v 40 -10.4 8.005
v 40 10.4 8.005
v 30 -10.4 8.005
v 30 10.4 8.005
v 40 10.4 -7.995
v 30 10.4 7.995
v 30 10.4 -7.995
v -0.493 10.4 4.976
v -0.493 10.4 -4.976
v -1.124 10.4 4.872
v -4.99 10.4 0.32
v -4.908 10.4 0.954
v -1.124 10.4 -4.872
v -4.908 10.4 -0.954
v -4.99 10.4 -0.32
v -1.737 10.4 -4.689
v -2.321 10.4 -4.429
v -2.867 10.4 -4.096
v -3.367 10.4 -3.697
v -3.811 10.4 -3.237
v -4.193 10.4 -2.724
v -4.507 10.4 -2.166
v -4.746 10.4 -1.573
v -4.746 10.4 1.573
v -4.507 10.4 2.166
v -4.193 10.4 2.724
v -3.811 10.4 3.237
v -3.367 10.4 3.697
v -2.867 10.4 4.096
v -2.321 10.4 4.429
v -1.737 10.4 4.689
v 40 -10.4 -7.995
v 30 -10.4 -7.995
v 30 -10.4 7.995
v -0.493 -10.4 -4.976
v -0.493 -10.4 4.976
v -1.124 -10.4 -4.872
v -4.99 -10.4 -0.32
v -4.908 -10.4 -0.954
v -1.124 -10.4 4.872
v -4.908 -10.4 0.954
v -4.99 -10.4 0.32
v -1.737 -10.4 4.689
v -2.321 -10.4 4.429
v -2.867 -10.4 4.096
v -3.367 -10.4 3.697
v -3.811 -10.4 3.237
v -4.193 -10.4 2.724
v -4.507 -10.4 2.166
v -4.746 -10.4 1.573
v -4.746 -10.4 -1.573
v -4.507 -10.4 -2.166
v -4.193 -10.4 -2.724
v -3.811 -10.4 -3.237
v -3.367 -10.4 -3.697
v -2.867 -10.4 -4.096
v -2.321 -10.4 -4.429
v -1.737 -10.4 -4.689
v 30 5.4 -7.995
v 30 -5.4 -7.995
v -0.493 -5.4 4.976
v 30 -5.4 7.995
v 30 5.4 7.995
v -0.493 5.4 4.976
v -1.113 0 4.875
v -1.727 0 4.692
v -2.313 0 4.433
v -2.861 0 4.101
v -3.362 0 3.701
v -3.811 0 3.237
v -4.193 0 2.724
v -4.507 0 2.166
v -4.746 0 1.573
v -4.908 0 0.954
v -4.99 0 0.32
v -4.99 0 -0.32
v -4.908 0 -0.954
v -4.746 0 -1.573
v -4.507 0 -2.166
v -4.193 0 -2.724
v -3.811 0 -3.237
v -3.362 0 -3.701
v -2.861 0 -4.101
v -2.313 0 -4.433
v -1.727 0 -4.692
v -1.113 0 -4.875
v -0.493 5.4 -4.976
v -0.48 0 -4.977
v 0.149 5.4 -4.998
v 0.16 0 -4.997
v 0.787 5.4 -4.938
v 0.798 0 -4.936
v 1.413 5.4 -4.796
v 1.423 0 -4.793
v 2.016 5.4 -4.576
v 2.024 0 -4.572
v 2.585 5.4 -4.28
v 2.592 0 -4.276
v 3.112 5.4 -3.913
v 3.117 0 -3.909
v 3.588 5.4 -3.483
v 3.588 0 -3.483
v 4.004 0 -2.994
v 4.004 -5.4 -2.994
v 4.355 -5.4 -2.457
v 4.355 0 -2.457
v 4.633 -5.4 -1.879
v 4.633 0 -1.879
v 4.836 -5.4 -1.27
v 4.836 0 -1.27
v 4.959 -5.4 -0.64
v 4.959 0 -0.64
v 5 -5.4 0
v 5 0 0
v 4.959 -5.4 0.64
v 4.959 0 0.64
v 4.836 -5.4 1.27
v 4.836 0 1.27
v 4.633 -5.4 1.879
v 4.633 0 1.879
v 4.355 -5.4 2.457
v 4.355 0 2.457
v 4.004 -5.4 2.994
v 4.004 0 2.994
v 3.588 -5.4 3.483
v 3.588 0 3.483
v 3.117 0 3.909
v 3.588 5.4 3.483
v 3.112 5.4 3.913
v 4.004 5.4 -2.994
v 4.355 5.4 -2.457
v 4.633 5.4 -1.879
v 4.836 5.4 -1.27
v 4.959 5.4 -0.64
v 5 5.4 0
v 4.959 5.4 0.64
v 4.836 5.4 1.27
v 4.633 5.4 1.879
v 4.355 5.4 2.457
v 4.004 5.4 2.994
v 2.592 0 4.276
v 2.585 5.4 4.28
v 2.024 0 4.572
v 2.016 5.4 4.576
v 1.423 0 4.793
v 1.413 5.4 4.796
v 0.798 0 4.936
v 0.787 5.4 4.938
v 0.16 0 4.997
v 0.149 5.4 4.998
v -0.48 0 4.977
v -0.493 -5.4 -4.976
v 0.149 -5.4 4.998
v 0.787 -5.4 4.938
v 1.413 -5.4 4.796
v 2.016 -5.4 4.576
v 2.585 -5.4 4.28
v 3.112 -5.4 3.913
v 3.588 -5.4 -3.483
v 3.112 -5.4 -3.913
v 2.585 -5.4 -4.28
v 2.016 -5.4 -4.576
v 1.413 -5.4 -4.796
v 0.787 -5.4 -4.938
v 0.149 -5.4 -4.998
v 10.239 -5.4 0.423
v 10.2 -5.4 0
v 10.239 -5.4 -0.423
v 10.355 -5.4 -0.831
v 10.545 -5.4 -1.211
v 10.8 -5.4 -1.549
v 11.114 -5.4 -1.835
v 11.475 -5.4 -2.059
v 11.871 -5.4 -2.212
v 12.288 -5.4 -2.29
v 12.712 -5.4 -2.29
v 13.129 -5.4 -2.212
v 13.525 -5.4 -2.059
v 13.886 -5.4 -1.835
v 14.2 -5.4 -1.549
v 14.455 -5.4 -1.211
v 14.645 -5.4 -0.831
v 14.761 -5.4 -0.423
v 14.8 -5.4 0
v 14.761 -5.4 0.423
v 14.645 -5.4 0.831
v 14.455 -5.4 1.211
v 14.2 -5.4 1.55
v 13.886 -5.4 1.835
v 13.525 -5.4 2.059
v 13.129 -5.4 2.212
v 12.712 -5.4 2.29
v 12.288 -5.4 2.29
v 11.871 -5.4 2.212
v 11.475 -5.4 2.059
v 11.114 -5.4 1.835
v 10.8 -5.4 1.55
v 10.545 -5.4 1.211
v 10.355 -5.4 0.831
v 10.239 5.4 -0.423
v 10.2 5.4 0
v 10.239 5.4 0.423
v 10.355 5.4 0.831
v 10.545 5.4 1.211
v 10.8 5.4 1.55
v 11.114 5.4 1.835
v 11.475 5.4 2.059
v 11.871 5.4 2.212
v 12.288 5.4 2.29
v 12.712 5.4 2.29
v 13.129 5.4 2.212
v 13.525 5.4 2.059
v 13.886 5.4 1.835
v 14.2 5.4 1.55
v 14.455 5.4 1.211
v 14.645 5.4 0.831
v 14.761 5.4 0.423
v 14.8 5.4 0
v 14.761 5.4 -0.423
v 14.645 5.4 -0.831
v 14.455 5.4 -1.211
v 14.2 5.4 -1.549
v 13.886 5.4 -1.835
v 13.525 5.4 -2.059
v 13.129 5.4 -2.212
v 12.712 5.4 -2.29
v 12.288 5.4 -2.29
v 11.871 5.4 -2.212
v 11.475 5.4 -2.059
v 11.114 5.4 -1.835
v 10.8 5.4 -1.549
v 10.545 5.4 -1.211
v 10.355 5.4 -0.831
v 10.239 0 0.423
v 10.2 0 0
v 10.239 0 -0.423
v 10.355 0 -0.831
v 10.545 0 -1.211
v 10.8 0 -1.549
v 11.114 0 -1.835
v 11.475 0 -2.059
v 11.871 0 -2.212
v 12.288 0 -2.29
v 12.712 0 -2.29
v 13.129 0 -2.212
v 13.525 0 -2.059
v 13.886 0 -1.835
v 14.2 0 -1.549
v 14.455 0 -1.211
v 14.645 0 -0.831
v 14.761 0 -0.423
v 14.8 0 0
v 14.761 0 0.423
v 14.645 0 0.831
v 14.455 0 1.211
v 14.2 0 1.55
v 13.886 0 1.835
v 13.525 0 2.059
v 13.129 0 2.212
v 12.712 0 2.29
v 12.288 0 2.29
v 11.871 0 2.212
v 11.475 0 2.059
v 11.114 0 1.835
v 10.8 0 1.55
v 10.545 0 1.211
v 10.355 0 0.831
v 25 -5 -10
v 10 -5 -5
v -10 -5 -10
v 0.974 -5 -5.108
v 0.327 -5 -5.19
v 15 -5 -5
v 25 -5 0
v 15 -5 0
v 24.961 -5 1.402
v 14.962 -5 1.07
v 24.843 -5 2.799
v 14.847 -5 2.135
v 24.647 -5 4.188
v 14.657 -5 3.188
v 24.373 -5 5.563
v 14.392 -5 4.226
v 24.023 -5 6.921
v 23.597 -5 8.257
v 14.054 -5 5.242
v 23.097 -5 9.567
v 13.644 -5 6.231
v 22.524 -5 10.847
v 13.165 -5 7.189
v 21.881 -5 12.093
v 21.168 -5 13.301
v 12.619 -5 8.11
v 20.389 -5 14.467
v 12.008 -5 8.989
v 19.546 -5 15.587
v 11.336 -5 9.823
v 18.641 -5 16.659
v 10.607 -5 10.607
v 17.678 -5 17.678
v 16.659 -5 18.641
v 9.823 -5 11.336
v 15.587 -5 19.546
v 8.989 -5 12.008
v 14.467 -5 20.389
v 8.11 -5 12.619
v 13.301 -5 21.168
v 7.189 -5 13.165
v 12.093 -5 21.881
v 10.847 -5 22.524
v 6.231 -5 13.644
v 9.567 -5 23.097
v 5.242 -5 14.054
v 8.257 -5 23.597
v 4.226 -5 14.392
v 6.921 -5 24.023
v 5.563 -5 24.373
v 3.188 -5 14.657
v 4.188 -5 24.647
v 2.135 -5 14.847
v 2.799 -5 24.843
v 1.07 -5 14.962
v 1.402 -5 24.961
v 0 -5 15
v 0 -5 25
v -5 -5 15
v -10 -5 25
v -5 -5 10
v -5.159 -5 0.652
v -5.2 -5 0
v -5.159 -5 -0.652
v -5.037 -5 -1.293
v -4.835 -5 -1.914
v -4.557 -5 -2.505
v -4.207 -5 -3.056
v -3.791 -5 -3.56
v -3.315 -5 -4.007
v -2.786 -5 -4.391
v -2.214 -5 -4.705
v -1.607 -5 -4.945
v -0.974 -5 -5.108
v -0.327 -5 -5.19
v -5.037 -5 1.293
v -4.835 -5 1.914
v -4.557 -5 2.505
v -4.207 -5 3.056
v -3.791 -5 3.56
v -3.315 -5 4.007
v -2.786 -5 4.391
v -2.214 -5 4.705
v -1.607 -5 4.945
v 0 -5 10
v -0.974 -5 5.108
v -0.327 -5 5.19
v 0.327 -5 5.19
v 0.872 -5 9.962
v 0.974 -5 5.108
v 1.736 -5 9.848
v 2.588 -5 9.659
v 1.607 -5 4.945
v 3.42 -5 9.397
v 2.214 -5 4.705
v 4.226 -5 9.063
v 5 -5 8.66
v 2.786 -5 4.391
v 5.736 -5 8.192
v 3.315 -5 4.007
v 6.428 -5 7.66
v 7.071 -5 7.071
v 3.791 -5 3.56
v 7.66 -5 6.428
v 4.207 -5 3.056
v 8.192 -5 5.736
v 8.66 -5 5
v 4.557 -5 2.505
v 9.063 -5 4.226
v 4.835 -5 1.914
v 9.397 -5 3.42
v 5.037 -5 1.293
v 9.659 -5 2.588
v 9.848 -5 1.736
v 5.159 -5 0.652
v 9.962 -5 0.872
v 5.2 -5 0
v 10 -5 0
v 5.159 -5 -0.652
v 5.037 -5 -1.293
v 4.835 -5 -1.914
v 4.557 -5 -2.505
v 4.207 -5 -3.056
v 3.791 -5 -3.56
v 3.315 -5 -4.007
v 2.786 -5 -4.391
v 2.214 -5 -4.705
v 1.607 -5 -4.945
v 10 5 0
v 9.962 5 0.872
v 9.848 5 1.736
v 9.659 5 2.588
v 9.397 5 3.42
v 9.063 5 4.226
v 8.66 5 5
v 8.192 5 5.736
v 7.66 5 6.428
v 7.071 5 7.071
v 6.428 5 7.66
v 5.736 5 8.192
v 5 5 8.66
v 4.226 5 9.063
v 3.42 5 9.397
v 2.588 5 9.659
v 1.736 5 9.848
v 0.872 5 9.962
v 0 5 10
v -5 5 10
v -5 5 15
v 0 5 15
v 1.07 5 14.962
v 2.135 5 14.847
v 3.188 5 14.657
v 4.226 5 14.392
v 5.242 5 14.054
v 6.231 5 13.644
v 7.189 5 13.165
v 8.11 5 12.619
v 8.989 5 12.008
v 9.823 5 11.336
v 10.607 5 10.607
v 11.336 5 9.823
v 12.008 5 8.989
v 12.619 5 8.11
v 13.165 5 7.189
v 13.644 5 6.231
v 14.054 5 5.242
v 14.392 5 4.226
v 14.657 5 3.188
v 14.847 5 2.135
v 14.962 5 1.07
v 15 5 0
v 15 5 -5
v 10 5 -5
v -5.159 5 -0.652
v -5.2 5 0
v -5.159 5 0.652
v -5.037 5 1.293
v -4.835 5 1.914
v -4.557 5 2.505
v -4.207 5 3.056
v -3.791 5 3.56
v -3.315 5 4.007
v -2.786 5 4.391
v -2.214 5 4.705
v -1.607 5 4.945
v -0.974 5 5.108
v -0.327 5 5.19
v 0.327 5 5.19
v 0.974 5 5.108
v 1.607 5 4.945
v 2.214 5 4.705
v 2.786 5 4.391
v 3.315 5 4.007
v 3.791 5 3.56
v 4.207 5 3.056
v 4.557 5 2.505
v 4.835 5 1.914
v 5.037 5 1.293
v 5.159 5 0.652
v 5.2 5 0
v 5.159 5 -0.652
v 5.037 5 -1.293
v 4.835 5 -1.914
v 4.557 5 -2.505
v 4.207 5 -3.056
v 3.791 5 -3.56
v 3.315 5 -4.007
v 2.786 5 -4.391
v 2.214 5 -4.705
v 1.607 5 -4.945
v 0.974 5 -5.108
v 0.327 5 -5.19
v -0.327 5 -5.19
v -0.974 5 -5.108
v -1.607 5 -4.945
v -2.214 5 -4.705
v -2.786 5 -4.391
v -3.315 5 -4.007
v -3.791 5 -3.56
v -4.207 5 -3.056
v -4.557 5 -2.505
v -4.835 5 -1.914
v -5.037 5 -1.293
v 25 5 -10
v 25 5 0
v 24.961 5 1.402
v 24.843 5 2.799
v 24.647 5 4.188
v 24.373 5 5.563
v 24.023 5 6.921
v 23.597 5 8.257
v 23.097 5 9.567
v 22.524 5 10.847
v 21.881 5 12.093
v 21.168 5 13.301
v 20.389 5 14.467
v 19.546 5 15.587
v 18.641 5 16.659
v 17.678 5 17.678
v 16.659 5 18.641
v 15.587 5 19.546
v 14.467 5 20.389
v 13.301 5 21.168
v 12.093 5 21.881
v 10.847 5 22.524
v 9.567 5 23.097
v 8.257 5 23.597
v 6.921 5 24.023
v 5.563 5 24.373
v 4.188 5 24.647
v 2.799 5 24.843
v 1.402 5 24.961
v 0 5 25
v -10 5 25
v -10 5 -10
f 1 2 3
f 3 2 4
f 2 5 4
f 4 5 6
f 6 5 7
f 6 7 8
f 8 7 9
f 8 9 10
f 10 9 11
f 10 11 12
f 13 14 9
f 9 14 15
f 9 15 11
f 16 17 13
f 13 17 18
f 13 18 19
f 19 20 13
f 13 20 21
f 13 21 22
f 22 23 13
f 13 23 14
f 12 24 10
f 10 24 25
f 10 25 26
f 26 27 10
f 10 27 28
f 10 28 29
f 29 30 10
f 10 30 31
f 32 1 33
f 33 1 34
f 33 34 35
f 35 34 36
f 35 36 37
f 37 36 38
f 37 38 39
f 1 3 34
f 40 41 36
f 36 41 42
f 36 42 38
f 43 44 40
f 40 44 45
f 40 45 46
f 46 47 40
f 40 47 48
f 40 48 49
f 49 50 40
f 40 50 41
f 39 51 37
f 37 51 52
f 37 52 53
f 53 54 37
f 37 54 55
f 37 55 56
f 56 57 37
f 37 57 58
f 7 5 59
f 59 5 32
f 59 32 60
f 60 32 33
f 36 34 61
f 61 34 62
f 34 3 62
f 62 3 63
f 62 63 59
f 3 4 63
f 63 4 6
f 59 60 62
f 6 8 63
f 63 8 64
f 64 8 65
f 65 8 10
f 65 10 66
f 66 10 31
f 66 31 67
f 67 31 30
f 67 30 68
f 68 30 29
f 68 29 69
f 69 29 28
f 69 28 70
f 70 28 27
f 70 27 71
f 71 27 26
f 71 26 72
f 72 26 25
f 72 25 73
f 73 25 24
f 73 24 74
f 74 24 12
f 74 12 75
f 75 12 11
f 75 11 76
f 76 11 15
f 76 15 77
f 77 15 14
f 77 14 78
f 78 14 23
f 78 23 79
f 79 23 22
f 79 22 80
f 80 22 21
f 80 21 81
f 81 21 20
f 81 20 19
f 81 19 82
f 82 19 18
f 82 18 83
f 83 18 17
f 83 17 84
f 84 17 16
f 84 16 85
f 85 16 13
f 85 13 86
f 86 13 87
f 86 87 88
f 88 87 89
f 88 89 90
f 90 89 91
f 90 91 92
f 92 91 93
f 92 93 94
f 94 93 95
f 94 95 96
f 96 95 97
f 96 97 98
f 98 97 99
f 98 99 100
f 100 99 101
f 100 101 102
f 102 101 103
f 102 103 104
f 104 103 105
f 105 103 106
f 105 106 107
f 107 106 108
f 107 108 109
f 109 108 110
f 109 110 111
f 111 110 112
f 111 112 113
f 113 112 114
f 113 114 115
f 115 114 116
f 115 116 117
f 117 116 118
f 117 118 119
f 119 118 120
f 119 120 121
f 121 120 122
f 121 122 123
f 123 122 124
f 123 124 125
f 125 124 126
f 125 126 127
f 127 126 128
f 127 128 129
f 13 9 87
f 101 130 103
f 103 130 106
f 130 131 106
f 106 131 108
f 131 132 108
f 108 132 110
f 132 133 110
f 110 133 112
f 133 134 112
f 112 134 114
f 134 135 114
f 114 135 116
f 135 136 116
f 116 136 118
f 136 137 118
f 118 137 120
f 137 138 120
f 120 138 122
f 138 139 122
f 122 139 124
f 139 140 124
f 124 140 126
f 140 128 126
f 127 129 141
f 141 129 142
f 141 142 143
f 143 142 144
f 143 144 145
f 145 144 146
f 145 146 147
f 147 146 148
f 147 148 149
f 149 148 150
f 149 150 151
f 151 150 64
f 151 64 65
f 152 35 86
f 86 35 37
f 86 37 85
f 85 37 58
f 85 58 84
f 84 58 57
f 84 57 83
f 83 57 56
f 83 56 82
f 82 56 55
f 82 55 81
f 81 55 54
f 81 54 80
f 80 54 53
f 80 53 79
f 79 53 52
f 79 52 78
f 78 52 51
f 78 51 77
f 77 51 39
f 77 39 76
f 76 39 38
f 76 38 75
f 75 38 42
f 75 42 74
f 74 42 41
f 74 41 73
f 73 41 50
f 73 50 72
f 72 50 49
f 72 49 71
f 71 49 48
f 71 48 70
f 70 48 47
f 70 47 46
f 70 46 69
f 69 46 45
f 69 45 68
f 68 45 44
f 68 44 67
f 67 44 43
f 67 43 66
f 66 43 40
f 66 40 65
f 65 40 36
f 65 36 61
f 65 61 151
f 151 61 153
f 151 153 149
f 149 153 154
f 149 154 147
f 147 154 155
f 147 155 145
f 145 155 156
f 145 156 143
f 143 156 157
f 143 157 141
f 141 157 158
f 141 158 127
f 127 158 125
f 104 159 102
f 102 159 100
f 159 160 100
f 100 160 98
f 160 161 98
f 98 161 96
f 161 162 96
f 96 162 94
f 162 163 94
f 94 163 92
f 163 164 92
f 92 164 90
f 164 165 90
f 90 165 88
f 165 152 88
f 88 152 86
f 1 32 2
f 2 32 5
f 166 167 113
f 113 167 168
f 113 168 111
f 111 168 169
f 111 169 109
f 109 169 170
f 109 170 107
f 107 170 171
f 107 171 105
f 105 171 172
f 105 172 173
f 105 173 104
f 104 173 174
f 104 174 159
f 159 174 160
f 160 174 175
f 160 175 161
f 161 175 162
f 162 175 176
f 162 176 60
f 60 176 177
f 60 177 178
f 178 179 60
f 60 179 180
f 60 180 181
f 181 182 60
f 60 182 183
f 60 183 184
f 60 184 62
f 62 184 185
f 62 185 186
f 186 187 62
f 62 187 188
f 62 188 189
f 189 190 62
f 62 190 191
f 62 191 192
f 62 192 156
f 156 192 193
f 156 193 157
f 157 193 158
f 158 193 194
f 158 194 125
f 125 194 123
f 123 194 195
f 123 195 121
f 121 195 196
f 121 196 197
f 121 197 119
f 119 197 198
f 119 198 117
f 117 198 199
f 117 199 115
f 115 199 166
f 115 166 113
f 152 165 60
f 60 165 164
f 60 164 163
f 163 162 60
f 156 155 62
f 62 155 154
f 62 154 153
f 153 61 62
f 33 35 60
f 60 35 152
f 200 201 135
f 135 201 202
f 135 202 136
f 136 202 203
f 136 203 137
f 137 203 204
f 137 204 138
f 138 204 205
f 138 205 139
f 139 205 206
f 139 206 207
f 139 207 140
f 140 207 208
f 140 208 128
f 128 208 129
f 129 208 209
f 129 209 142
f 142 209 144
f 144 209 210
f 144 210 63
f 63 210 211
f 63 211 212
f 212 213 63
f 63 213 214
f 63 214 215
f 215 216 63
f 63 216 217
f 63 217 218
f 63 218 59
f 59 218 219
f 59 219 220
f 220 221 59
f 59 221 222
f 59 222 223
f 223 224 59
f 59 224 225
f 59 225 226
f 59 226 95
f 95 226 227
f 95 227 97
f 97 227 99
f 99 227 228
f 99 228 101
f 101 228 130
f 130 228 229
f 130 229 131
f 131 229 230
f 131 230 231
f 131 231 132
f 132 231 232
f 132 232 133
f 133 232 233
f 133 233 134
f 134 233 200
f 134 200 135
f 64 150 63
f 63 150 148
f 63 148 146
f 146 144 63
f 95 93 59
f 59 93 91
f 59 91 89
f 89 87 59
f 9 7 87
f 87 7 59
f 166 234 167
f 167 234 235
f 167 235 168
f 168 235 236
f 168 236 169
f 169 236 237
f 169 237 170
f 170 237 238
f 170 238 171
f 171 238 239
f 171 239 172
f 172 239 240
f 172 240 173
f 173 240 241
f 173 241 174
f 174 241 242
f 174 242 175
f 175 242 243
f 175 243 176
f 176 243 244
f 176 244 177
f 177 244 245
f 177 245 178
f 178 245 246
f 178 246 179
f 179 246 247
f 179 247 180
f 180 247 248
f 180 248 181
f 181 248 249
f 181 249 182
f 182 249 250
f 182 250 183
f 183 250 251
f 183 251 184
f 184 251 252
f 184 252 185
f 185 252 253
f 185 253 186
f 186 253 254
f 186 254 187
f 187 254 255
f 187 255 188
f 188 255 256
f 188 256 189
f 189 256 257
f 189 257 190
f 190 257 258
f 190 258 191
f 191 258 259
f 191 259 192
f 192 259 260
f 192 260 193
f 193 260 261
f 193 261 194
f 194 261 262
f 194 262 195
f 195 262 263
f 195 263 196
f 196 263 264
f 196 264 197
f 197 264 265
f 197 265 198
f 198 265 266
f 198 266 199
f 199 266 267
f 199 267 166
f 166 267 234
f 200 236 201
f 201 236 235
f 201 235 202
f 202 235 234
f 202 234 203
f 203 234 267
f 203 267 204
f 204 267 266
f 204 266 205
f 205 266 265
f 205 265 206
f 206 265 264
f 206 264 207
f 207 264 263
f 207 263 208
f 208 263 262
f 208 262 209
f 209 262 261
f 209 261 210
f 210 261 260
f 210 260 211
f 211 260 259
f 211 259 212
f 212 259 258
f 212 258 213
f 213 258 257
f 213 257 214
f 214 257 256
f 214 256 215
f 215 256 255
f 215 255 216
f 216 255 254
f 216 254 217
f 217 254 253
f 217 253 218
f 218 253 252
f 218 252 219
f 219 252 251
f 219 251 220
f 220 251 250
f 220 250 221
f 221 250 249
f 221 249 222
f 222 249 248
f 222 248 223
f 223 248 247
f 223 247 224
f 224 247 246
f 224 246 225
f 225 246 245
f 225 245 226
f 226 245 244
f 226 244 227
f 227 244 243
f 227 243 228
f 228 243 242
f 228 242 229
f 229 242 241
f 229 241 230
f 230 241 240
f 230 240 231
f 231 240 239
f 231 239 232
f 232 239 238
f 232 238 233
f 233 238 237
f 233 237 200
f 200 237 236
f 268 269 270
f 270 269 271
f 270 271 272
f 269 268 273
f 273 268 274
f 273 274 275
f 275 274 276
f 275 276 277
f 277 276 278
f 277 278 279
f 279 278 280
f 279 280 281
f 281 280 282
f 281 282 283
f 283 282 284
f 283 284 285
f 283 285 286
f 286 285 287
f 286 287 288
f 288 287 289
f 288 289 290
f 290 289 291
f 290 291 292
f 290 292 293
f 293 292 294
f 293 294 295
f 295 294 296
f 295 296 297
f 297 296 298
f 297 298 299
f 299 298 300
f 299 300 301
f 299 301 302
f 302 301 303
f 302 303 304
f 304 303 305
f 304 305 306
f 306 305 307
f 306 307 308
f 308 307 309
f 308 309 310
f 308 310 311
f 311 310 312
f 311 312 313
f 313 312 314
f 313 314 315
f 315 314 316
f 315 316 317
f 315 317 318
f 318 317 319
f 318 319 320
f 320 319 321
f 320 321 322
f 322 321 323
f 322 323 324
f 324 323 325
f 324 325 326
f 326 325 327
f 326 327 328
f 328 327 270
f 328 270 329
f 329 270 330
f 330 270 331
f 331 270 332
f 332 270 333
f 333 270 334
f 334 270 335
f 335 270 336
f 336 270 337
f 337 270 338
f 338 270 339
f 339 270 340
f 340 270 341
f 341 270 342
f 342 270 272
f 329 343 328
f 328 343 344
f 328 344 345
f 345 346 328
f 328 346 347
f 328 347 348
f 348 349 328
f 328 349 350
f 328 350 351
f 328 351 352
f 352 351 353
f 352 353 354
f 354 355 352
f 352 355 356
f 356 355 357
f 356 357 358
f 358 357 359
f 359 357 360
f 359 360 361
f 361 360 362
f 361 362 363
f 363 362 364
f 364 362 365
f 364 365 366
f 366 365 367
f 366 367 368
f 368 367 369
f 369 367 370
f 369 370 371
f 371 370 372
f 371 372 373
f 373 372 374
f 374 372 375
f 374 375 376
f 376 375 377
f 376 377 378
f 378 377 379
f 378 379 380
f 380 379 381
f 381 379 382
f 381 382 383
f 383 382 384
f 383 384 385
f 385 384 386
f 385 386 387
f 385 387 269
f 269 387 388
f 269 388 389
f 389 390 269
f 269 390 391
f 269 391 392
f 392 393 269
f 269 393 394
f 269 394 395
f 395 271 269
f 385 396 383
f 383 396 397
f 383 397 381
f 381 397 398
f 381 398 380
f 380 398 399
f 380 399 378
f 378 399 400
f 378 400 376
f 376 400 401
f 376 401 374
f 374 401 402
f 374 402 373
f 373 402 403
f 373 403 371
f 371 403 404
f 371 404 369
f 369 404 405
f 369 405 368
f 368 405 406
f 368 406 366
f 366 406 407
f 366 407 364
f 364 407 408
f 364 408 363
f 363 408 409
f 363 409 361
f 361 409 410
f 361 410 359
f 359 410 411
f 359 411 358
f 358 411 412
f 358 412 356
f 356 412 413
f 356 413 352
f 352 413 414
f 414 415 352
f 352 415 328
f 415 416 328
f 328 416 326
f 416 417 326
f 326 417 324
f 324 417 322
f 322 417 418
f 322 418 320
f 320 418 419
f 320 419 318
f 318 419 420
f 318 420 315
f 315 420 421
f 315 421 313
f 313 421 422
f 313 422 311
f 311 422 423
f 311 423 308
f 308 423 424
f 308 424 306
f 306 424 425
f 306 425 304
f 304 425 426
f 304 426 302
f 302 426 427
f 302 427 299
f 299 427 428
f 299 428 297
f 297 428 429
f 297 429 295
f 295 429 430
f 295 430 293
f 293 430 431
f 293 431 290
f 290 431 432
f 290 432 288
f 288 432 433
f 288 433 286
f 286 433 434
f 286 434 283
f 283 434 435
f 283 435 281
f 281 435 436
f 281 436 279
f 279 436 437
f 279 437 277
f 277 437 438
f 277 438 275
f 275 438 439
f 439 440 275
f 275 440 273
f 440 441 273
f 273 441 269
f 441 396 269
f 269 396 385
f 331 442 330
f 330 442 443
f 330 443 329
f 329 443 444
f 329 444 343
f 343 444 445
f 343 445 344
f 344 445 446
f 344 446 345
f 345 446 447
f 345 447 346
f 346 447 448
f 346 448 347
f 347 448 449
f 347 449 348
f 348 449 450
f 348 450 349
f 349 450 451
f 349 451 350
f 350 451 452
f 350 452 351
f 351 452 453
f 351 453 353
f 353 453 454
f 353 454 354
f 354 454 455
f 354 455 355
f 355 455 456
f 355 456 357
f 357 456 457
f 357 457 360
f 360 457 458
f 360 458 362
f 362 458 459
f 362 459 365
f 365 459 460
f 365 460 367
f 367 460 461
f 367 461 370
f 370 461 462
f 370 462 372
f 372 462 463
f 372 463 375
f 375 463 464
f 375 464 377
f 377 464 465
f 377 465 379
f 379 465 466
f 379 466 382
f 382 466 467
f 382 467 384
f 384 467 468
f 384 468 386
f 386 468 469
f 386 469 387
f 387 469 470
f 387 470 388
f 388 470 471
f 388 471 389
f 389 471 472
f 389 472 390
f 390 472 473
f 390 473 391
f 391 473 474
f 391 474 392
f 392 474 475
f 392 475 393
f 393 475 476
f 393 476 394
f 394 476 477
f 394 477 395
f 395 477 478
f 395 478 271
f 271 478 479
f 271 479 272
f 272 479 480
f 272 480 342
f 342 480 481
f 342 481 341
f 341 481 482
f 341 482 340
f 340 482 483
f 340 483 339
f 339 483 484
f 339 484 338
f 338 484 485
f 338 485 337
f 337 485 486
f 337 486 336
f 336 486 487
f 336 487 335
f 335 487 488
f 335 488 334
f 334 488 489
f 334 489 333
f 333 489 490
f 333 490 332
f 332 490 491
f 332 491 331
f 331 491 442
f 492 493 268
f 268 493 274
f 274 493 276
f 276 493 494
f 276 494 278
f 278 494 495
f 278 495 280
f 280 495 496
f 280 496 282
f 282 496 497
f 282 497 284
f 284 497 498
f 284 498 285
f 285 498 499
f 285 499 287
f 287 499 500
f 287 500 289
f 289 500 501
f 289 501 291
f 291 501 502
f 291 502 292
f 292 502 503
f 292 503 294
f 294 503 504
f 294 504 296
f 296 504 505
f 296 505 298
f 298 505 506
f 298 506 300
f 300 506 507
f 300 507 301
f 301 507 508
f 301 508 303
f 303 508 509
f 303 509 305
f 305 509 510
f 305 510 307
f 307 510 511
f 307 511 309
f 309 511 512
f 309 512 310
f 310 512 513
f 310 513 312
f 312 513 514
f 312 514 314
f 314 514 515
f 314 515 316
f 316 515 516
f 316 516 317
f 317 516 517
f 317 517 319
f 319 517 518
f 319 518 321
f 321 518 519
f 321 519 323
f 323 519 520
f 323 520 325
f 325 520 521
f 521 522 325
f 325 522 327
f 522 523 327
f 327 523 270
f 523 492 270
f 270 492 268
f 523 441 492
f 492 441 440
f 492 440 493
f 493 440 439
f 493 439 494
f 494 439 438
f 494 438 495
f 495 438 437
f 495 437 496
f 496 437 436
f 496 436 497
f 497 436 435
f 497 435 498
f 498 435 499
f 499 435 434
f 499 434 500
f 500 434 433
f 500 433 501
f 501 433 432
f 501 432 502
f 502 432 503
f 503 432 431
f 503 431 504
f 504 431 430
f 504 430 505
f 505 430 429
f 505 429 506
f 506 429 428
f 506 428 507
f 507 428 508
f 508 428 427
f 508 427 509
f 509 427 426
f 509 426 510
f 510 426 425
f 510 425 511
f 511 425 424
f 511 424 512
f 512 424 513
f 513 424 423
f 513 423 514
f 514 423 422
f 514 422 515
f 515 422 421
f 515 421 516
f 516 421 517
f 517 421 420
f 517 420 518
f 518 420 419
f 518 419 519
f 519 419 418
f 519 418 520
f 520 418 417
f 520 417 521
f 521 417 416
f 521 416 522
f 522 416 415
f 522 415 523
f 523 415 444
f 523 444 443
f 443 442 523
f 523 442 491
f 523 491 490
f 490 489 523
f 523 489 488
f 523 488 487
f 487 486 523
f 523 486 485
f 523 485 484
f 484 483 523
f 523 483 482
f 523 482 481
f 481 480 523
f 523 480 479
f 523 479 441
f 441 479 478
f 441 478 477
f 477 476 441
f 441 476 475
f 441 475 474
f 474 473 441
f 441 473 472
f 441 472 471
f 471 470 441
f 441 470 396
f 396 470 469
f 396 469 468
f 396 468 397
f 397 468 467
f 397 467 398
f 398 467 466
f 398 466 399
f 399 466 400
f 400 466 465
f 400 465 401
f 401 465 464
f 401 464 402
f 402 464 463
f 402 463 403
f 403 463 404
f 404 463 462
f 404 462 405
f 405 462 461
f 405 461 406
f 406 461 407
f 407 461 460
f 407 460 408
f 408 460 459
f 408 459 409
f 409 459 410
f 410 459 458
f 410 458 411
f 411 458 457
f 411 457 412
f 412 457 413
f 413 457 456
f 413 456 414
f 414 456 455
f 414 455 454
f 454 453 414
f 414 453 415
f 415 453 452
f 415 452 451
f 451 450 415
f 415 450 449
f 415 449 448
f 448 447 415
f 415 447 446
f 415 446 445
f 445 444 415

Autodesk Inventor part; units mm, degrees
ref_plane "XY Plane" through (0, 0, 0) normal (0, 0, 1) x (1, 0, 0)
sketch "Boceto1" plane through (0, 0, 0) normal (0, 1, 0) x (-1, 0, 0)
  circle A0 centre (0, 0) radius 5
  circle A1 centre (-12.5, 0) radius 2.3
  dimension "d0" = 10
  dimension "d1" = 4.6
extrude "Extrusión1" add sketch "Boceto1" along normal mid plane 10.8
sketch "Boceto2" plane through (0, 5.4, 0) normal (0, 1, 0) x (1, 0, 0)
  circle A0 centre (0, 0) radius 5
  line L0 (30, 0) -> (30, -10)
  line L1 (-0.4927, -4.9757) -> (30, -7.9951)
  line L2 (30, 0) -> (30, 10)
  line L3 (-0.4927, 4.9757) -> (30, 7.9951)
extrude "Extrusión2" add sketch "Boceto2" along normal blind 10
sketch "Boceto3" plane through (0, -5.4, 0) normal (0, -1, 0) x (1, 0, 0)
  line L0 (30, -7.9951) -> (-0.4927, -4.9757) projected
  line L1 (30, 7.9951) -> (30, -7.9951) projected
  line L2 (-0.4927, 4.9757) -> (30, 7.9951) projected
  circle A0 centre (0, 0) radius 5 projected
extrude "Extrusión3" add sketch "Boceto3" along normal blind 10
sketch "Boceto4" plane through (30, 5.4, 7.9951) normal (1, 0, 0) x (0, 0, -1)
  line L0 (0, 0) -> (15.9902, 0) projected
  line L1 (7.9951, 0) -> (7.9951, -5.4) construction
  line L2 (32.9951, 22.3) -> (-17.0049, 22.3)
  line L3 (-17.0049, 22.3) -> (-17.0049, -27.7)
  line L4 (-17.0049, -27.7) -> (32.9951, -27.7)
  line L5 (32.9951, -27.7) -> (32.9951, 22.3)
  line L6 (32.9951, 22.3) -> (-17.0049, -27.7) construction
  line L7 (-17.0049, 22.3) -> (32.9951, -27.7) construction
  point P0 (7.9951, -2.7)
  dimension "d10" = 50
  dimension "d11" = 50
extrude "Extrusión4" add sketch "Boceto4" along normal blind 10
sketch "Boceto5" plane through (30, 5.4, 7.9951) normal (-1, 0, 0) x (0, 0, 1)
  line L0 (-32.9951, -27.7) -> (-32.9951, 22.3) projected
  line L1 (17.0049, 22.3) -> (17.0049, -27.7) projected
  line L2 (-32.9951, -27.7) -> (17.0049, -27.7)
  line L3 (17.0049, -27.7) -> (17.0049, 22.3)
  line L4 (17.0049, 22.3) -> (-32.9951, 22.3)
  line L5 (-32.9951, 22.3) -> (-32.9951, -27.7)
  line L6 (-15.9902, -20.8) -> (0, -20.8) construction
  line L7 (-15.9902, -20.8) -> (0.0098, -20.8)
  line L8 (0.0098, -20.8) -> (0.0098, 10) construction
  line L9 (0.0098, 10) -> (-15.9902, 10) construction
  line L10 (-15.9902, 10) -> (-15.9902, -20.8)
  line L11 (0.0098, -20.8) -> (-15.9902, 10) construction
  line L12 (0.0098, 10) -> (-15.9902, -20.8) construction
  line L13 (0.0098, -15.8) -> (-15.9902, -15.8)
  line L14 (-15.9902, -15.8) -> (-15.9902, 5) construction
  line L15 (-15.9902, 5) -> (0.0098, 5)
  line L16 (0.0098, 5) -> (0.0098, -15.8)
  line L17 (0.0098, -15.8) -> (-15.9902, 5) construction
  line L18 (-15.9902, -15.8) -> (0.0098, 5) construction
  point P0 (-7.9951, -5.4)
  point P1 (17.0049, -27.7)
  point P2 (-32.9951, 22.3)
  point P3 (-7.9902, -5.4)
  dimension "d14" = 50
  dimension "d15" = 50
  dimension "d16" = 16
  dimension "d17" = 30.8
  dimension "d20" = 20.8
extrude "Extrusión5" cut sketch "Boceto5" along normal through all both and the other way through all
sketch "Boceto6" plane through (0, 0, 0) normal (0, 1, 0) x (-1, 0, 0)
  line L0 (-25, -10) -> (25, -10)
  line L1 (-10, 0) -> (-10, -5)
  arc A0 (0, 10) -> (-10, 0) centre (0, 0) ccw
  arc A1 (0, 15) -> (-15, 0) centre (0, 0) ccw
  line L2 (-15, 0) -> (-15, -5)
  arc A2 (0, 25) -> (-25, 0) centre (0, 0) ccw
  line L3 (-25, 0) -> (-25, -10)
  line L4 (-25, -10) -> (0, -10)
  circle A3 centre (0, 0) radius 5.2
  line L5 (0, 10) -> (5, 10)
  line L6 (10, 10) -> (10, 25)
  line L7 (5, 15) -> (0, 15)
  line L8 (0, 25) -> (10, 25)
  line L9 (10, 25) -> (10, 15)
  line L10 (10, 10) -> (10, -10)
  line L11 (10, -10) -> (0, -10)
  line L12 (-15, -5) -> (-10, -5)
  line L13 (5, 15) -> (5, 10)
  point P0 (47.6217, -30.1018)
  dimension "d21" = 20
  dimension "d22" = 25
  dimension "d23" = 10
  dimension "d24" = 10
  dimension "d25" = 10.4
  dimension "d26" = 10
  dimension "d27" = 35
extrude "Extrusión6" add sketch "Boceto6" along normal mid plane 10
properties part number "Pieza2PrimerEslabon_3DPrint"
